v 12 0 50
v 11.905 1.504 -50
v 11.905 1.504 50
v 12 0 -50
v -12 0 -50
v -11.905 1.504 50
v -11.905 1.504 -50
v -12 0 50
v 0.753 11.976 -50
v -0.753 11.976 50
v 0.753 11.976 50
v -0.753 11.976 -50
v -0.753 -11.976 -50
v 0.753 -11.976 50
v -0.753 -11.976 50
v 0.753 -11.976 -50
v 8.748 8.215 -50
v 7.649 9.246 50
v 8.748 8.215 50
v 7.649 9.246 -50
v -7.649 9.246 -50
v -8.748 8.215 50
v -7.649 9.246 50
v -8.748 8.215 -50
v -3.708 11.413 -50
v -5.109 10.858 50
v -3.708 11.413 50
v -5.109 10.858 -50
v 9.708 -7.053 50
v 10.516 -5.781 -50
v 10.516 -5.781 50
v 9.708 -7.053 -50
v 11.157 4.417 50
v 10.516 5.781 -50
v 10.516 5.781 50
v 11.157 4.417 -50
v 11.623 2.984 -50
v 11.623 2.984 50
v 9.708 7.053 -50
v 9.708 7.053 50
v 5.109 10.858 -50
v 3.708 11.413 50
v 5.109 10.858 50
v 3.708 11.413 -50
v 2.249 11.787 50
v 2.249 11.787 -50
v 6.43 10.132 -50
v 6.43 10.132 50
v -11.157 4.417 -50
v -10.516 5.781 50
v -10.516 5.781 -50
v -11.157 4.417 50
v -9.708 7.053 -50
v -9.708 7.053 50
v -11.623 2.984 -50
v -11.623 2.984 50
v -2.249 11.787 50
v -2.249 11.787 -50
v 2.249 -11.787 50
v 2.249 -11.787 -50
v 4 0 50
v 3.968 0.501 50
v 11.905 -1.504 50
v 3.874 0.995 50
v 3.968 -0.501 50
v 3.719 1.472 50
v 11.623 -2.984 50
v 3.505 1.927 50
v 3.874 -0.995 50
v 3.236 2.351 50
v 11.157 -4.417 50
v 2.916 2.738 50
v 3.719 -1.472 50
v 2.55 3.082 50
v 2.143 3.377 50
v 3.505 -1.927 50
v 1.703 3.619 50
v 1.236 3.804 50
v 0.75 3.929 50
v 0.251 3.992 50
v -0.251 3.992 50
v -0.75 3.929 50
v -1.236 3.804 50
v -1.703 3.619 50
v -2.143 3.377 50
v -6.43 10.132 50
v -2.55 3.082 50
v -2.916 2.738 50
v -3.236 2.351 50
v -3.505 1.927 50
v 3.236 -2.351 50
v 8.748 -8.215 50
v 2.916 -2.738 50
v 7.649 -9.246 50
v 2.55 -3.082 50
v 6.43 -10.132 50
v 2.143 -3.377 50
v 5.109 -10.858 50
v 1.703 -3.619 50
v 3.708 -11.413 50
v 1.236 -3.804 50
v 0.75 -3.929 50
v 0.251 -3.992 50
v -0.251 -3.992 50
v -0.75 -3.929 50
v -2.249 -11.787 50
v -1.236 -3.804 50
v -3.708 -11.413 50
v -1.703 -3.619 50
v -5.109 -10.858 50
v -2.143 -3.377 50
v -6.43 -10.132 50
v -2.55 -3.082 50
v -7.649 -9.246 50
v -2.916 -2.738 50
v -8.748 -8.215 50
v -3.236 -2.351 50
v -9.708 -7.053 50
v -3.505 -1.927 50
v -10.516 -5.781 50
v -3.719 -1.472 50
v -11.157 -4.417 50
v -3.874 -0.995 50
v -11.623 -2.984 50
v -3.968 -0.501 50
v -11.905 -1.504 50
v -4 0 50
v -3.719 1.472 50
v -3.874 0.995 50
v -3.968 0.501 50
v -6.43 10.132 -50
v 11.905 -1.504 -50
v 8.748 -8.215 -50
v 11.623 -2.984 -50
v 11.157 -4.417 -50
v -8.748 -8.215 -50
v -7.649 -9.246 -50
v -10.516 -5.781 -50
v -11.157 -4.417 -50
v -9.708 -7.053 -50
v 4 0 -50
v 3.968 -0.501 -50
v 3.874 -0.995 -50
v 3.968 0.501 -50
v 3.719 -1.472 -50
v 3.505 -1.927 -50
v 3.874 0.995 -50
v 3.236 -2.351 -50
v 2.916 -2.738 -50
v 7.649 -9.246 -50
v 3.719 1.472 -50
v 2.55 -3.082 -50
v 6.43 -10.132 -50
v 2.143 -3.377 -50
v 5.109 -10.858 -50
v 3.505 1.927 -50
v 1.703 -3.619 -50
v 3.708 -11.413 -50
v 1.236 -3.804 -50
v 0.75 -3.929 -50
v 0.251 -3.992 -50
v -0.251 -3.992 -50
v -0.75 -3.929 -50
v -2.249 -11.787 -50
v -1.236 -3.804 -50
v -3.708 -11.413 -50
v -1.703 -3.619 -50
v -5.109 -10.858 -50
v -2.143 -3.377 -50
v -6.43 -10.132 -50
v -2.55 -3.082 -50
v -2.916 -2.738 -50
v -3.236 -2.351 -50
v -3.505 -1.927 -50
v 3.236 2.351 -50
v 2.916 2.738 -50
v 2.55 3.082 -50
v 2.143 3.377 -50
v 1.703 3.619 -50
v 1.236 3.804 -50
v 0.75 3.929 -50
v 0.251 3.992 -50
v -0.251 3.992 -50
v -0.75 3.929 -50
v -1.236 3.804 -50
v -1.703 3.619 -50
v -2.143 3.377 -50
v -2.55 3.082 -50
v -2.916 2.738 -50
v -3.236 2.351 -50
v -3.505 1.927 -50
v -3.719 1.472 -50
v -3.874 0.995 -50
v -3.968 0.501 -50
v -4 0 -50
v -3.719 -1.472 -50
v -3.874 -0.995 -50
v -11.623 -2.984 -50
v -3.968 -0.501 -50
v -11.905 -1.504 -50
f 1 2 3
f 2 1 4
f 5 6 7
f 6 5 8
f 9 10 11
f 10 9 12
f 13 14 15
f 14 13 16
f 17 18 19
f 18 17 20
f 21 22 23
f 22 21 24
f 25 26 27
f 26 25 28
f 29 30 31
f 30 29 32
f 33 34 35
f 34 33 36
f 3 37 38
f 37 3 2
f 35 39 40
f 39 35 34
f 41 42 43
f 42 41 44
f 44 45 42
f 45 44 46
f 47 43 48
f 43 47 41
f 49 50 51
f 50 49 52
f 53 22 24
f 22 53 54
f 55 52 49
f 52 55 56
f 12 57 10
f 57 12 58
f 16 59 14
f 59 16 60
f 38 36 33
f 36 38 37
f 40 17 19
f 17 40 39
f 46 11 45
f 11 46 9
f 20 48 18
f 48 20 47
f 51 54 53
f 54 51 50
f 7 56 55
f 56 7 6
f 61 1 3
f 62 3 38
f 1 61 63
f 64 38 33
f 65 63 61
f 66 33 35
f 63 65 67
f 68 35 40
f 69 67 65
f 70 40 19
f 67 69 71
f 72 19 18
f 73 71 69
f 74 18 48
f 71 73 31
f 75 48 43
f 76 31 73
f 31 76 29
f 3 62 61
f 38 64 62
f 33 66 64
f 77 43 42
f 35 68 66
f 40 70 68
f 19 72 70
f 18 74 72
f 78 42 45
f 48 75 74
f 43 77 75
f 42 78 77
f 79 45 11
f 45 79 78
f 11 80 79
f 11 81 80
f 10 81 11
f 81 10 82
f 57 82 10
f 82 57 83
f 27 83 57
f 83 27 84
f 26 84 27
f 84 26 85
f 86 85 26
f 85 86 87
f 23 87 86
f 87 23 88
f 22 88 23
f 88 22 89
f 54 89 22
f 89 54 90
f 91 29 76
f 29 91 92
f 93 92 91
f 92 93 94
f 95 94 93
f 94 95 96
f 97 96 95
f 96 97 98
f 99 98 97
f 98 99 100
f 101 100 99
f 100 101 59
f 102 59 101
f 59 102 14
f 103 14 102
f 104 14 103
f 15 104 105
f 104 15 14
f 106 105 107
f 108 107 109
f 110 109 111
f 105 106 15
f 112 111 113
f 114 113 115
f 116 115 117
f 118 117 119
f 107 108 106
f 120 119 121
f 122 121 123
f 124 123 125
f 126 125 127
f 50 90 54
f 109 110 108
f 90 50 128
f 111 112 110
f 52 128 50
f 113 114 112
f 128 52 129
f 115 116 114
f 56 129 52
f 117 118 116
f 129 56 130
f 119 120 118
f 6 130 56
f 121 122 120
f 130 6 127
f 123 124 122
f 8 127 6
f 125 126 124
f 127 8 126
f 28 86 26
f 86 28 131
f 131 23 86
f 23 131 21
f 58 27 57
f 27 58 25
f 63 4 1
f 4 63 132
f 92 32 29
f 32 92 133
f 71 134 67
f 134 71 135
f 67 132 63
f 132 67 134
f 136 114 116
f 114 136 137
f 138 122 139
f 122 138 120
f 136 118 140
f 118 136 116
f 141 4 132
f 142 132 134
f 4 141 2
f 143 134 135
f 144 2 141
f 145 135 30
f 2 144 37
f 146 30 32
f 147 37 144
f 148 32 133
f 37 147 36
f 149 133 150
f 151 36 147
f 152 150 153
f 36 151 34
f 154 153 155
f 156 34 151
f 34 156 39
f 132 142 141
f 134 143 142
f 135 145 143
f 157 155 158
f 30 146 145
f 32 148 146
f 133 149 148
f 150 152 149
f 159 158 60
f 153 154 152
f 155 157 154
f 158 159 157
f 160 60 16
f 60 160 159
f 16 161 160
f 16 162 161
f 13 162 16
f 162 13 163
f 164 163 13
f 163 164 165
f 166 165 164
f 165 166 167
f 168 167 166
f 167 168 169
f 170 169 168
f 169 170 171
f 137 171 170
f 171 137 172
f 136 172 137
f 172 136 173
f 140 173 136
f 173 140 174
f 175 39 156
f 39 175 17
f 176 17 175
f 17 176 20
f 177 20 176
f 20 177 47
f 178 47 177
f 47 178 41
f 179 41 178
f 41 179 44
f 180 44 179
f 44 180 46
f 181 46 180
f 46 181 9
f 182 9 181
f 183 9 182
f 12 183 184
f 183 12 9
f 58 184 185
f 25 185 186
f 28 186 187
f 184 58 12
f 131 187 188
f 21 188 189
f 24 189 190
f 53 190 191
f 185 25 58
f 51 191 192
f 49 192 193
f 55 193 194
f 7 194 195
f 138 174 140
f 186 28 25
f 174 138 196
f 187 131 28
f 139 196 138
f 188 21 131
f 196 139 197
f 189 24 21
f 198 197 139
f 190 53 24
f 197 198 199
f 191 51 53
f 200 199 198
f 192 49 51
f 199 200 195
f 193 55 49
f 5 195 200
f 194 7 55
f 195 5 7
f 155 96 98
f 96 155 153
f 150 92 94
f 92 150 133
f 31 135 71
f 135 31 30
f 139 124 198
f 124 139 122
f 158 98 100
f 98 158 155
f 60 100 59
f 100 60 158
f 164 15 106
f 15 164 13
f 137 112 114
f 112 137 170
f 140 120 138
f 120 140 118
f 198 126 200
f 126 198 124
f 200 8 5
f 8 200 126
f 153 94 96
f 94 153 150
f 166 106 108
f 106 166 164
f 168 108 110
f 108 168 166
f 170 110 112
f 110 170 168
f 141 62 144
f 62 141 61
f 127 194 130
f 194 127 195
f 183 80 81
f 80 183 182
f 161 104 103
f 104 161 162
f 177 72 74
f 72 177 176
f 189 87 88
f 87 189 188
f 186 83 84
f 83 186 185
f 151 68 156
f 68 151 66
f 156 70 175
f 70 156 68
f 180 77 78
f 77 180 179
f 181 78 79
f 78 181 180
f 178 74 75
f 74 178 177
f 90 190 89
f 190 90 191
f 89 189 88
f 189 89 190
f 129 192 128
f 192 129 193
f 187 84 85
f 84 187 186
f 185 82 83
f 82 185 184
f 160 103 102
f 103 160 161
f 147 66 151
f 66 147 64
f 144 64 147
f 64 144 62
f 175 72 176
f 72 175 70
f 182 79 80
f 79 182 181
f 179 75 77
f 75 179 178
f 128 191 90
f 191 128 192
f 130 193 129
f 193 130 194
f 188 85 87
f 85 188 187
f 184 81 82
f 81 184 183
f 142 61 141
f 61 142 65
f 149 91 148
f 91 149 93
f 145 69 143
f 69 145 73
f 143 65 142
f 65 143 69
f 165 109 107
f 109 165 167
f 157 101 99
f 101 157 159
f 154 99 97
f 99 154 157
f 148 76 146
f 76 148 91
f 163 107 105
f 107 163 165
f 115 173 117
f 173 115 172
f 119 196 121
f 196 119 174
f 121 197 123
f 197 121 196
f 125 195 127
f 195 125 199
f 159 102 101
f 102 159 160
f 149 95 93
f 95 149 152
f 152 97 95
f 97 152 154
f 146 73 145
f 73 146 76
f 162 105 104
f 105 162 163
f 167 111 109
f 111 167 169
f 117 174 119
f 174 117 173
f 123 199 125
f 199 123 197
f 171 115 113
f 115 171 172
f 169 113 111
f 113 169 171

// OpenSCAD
$fn = 50;


difference() {
	union() {
		translate(v = [0, 0, -50.0000000000]) {
			cylinder(h = 100, r = 12.0000000000);
		}
	}
	union() {
		translate(v = [0, 0, -100.0000000000]) {
			cylinder(h = 200, r = 4);
		}
	}
}
